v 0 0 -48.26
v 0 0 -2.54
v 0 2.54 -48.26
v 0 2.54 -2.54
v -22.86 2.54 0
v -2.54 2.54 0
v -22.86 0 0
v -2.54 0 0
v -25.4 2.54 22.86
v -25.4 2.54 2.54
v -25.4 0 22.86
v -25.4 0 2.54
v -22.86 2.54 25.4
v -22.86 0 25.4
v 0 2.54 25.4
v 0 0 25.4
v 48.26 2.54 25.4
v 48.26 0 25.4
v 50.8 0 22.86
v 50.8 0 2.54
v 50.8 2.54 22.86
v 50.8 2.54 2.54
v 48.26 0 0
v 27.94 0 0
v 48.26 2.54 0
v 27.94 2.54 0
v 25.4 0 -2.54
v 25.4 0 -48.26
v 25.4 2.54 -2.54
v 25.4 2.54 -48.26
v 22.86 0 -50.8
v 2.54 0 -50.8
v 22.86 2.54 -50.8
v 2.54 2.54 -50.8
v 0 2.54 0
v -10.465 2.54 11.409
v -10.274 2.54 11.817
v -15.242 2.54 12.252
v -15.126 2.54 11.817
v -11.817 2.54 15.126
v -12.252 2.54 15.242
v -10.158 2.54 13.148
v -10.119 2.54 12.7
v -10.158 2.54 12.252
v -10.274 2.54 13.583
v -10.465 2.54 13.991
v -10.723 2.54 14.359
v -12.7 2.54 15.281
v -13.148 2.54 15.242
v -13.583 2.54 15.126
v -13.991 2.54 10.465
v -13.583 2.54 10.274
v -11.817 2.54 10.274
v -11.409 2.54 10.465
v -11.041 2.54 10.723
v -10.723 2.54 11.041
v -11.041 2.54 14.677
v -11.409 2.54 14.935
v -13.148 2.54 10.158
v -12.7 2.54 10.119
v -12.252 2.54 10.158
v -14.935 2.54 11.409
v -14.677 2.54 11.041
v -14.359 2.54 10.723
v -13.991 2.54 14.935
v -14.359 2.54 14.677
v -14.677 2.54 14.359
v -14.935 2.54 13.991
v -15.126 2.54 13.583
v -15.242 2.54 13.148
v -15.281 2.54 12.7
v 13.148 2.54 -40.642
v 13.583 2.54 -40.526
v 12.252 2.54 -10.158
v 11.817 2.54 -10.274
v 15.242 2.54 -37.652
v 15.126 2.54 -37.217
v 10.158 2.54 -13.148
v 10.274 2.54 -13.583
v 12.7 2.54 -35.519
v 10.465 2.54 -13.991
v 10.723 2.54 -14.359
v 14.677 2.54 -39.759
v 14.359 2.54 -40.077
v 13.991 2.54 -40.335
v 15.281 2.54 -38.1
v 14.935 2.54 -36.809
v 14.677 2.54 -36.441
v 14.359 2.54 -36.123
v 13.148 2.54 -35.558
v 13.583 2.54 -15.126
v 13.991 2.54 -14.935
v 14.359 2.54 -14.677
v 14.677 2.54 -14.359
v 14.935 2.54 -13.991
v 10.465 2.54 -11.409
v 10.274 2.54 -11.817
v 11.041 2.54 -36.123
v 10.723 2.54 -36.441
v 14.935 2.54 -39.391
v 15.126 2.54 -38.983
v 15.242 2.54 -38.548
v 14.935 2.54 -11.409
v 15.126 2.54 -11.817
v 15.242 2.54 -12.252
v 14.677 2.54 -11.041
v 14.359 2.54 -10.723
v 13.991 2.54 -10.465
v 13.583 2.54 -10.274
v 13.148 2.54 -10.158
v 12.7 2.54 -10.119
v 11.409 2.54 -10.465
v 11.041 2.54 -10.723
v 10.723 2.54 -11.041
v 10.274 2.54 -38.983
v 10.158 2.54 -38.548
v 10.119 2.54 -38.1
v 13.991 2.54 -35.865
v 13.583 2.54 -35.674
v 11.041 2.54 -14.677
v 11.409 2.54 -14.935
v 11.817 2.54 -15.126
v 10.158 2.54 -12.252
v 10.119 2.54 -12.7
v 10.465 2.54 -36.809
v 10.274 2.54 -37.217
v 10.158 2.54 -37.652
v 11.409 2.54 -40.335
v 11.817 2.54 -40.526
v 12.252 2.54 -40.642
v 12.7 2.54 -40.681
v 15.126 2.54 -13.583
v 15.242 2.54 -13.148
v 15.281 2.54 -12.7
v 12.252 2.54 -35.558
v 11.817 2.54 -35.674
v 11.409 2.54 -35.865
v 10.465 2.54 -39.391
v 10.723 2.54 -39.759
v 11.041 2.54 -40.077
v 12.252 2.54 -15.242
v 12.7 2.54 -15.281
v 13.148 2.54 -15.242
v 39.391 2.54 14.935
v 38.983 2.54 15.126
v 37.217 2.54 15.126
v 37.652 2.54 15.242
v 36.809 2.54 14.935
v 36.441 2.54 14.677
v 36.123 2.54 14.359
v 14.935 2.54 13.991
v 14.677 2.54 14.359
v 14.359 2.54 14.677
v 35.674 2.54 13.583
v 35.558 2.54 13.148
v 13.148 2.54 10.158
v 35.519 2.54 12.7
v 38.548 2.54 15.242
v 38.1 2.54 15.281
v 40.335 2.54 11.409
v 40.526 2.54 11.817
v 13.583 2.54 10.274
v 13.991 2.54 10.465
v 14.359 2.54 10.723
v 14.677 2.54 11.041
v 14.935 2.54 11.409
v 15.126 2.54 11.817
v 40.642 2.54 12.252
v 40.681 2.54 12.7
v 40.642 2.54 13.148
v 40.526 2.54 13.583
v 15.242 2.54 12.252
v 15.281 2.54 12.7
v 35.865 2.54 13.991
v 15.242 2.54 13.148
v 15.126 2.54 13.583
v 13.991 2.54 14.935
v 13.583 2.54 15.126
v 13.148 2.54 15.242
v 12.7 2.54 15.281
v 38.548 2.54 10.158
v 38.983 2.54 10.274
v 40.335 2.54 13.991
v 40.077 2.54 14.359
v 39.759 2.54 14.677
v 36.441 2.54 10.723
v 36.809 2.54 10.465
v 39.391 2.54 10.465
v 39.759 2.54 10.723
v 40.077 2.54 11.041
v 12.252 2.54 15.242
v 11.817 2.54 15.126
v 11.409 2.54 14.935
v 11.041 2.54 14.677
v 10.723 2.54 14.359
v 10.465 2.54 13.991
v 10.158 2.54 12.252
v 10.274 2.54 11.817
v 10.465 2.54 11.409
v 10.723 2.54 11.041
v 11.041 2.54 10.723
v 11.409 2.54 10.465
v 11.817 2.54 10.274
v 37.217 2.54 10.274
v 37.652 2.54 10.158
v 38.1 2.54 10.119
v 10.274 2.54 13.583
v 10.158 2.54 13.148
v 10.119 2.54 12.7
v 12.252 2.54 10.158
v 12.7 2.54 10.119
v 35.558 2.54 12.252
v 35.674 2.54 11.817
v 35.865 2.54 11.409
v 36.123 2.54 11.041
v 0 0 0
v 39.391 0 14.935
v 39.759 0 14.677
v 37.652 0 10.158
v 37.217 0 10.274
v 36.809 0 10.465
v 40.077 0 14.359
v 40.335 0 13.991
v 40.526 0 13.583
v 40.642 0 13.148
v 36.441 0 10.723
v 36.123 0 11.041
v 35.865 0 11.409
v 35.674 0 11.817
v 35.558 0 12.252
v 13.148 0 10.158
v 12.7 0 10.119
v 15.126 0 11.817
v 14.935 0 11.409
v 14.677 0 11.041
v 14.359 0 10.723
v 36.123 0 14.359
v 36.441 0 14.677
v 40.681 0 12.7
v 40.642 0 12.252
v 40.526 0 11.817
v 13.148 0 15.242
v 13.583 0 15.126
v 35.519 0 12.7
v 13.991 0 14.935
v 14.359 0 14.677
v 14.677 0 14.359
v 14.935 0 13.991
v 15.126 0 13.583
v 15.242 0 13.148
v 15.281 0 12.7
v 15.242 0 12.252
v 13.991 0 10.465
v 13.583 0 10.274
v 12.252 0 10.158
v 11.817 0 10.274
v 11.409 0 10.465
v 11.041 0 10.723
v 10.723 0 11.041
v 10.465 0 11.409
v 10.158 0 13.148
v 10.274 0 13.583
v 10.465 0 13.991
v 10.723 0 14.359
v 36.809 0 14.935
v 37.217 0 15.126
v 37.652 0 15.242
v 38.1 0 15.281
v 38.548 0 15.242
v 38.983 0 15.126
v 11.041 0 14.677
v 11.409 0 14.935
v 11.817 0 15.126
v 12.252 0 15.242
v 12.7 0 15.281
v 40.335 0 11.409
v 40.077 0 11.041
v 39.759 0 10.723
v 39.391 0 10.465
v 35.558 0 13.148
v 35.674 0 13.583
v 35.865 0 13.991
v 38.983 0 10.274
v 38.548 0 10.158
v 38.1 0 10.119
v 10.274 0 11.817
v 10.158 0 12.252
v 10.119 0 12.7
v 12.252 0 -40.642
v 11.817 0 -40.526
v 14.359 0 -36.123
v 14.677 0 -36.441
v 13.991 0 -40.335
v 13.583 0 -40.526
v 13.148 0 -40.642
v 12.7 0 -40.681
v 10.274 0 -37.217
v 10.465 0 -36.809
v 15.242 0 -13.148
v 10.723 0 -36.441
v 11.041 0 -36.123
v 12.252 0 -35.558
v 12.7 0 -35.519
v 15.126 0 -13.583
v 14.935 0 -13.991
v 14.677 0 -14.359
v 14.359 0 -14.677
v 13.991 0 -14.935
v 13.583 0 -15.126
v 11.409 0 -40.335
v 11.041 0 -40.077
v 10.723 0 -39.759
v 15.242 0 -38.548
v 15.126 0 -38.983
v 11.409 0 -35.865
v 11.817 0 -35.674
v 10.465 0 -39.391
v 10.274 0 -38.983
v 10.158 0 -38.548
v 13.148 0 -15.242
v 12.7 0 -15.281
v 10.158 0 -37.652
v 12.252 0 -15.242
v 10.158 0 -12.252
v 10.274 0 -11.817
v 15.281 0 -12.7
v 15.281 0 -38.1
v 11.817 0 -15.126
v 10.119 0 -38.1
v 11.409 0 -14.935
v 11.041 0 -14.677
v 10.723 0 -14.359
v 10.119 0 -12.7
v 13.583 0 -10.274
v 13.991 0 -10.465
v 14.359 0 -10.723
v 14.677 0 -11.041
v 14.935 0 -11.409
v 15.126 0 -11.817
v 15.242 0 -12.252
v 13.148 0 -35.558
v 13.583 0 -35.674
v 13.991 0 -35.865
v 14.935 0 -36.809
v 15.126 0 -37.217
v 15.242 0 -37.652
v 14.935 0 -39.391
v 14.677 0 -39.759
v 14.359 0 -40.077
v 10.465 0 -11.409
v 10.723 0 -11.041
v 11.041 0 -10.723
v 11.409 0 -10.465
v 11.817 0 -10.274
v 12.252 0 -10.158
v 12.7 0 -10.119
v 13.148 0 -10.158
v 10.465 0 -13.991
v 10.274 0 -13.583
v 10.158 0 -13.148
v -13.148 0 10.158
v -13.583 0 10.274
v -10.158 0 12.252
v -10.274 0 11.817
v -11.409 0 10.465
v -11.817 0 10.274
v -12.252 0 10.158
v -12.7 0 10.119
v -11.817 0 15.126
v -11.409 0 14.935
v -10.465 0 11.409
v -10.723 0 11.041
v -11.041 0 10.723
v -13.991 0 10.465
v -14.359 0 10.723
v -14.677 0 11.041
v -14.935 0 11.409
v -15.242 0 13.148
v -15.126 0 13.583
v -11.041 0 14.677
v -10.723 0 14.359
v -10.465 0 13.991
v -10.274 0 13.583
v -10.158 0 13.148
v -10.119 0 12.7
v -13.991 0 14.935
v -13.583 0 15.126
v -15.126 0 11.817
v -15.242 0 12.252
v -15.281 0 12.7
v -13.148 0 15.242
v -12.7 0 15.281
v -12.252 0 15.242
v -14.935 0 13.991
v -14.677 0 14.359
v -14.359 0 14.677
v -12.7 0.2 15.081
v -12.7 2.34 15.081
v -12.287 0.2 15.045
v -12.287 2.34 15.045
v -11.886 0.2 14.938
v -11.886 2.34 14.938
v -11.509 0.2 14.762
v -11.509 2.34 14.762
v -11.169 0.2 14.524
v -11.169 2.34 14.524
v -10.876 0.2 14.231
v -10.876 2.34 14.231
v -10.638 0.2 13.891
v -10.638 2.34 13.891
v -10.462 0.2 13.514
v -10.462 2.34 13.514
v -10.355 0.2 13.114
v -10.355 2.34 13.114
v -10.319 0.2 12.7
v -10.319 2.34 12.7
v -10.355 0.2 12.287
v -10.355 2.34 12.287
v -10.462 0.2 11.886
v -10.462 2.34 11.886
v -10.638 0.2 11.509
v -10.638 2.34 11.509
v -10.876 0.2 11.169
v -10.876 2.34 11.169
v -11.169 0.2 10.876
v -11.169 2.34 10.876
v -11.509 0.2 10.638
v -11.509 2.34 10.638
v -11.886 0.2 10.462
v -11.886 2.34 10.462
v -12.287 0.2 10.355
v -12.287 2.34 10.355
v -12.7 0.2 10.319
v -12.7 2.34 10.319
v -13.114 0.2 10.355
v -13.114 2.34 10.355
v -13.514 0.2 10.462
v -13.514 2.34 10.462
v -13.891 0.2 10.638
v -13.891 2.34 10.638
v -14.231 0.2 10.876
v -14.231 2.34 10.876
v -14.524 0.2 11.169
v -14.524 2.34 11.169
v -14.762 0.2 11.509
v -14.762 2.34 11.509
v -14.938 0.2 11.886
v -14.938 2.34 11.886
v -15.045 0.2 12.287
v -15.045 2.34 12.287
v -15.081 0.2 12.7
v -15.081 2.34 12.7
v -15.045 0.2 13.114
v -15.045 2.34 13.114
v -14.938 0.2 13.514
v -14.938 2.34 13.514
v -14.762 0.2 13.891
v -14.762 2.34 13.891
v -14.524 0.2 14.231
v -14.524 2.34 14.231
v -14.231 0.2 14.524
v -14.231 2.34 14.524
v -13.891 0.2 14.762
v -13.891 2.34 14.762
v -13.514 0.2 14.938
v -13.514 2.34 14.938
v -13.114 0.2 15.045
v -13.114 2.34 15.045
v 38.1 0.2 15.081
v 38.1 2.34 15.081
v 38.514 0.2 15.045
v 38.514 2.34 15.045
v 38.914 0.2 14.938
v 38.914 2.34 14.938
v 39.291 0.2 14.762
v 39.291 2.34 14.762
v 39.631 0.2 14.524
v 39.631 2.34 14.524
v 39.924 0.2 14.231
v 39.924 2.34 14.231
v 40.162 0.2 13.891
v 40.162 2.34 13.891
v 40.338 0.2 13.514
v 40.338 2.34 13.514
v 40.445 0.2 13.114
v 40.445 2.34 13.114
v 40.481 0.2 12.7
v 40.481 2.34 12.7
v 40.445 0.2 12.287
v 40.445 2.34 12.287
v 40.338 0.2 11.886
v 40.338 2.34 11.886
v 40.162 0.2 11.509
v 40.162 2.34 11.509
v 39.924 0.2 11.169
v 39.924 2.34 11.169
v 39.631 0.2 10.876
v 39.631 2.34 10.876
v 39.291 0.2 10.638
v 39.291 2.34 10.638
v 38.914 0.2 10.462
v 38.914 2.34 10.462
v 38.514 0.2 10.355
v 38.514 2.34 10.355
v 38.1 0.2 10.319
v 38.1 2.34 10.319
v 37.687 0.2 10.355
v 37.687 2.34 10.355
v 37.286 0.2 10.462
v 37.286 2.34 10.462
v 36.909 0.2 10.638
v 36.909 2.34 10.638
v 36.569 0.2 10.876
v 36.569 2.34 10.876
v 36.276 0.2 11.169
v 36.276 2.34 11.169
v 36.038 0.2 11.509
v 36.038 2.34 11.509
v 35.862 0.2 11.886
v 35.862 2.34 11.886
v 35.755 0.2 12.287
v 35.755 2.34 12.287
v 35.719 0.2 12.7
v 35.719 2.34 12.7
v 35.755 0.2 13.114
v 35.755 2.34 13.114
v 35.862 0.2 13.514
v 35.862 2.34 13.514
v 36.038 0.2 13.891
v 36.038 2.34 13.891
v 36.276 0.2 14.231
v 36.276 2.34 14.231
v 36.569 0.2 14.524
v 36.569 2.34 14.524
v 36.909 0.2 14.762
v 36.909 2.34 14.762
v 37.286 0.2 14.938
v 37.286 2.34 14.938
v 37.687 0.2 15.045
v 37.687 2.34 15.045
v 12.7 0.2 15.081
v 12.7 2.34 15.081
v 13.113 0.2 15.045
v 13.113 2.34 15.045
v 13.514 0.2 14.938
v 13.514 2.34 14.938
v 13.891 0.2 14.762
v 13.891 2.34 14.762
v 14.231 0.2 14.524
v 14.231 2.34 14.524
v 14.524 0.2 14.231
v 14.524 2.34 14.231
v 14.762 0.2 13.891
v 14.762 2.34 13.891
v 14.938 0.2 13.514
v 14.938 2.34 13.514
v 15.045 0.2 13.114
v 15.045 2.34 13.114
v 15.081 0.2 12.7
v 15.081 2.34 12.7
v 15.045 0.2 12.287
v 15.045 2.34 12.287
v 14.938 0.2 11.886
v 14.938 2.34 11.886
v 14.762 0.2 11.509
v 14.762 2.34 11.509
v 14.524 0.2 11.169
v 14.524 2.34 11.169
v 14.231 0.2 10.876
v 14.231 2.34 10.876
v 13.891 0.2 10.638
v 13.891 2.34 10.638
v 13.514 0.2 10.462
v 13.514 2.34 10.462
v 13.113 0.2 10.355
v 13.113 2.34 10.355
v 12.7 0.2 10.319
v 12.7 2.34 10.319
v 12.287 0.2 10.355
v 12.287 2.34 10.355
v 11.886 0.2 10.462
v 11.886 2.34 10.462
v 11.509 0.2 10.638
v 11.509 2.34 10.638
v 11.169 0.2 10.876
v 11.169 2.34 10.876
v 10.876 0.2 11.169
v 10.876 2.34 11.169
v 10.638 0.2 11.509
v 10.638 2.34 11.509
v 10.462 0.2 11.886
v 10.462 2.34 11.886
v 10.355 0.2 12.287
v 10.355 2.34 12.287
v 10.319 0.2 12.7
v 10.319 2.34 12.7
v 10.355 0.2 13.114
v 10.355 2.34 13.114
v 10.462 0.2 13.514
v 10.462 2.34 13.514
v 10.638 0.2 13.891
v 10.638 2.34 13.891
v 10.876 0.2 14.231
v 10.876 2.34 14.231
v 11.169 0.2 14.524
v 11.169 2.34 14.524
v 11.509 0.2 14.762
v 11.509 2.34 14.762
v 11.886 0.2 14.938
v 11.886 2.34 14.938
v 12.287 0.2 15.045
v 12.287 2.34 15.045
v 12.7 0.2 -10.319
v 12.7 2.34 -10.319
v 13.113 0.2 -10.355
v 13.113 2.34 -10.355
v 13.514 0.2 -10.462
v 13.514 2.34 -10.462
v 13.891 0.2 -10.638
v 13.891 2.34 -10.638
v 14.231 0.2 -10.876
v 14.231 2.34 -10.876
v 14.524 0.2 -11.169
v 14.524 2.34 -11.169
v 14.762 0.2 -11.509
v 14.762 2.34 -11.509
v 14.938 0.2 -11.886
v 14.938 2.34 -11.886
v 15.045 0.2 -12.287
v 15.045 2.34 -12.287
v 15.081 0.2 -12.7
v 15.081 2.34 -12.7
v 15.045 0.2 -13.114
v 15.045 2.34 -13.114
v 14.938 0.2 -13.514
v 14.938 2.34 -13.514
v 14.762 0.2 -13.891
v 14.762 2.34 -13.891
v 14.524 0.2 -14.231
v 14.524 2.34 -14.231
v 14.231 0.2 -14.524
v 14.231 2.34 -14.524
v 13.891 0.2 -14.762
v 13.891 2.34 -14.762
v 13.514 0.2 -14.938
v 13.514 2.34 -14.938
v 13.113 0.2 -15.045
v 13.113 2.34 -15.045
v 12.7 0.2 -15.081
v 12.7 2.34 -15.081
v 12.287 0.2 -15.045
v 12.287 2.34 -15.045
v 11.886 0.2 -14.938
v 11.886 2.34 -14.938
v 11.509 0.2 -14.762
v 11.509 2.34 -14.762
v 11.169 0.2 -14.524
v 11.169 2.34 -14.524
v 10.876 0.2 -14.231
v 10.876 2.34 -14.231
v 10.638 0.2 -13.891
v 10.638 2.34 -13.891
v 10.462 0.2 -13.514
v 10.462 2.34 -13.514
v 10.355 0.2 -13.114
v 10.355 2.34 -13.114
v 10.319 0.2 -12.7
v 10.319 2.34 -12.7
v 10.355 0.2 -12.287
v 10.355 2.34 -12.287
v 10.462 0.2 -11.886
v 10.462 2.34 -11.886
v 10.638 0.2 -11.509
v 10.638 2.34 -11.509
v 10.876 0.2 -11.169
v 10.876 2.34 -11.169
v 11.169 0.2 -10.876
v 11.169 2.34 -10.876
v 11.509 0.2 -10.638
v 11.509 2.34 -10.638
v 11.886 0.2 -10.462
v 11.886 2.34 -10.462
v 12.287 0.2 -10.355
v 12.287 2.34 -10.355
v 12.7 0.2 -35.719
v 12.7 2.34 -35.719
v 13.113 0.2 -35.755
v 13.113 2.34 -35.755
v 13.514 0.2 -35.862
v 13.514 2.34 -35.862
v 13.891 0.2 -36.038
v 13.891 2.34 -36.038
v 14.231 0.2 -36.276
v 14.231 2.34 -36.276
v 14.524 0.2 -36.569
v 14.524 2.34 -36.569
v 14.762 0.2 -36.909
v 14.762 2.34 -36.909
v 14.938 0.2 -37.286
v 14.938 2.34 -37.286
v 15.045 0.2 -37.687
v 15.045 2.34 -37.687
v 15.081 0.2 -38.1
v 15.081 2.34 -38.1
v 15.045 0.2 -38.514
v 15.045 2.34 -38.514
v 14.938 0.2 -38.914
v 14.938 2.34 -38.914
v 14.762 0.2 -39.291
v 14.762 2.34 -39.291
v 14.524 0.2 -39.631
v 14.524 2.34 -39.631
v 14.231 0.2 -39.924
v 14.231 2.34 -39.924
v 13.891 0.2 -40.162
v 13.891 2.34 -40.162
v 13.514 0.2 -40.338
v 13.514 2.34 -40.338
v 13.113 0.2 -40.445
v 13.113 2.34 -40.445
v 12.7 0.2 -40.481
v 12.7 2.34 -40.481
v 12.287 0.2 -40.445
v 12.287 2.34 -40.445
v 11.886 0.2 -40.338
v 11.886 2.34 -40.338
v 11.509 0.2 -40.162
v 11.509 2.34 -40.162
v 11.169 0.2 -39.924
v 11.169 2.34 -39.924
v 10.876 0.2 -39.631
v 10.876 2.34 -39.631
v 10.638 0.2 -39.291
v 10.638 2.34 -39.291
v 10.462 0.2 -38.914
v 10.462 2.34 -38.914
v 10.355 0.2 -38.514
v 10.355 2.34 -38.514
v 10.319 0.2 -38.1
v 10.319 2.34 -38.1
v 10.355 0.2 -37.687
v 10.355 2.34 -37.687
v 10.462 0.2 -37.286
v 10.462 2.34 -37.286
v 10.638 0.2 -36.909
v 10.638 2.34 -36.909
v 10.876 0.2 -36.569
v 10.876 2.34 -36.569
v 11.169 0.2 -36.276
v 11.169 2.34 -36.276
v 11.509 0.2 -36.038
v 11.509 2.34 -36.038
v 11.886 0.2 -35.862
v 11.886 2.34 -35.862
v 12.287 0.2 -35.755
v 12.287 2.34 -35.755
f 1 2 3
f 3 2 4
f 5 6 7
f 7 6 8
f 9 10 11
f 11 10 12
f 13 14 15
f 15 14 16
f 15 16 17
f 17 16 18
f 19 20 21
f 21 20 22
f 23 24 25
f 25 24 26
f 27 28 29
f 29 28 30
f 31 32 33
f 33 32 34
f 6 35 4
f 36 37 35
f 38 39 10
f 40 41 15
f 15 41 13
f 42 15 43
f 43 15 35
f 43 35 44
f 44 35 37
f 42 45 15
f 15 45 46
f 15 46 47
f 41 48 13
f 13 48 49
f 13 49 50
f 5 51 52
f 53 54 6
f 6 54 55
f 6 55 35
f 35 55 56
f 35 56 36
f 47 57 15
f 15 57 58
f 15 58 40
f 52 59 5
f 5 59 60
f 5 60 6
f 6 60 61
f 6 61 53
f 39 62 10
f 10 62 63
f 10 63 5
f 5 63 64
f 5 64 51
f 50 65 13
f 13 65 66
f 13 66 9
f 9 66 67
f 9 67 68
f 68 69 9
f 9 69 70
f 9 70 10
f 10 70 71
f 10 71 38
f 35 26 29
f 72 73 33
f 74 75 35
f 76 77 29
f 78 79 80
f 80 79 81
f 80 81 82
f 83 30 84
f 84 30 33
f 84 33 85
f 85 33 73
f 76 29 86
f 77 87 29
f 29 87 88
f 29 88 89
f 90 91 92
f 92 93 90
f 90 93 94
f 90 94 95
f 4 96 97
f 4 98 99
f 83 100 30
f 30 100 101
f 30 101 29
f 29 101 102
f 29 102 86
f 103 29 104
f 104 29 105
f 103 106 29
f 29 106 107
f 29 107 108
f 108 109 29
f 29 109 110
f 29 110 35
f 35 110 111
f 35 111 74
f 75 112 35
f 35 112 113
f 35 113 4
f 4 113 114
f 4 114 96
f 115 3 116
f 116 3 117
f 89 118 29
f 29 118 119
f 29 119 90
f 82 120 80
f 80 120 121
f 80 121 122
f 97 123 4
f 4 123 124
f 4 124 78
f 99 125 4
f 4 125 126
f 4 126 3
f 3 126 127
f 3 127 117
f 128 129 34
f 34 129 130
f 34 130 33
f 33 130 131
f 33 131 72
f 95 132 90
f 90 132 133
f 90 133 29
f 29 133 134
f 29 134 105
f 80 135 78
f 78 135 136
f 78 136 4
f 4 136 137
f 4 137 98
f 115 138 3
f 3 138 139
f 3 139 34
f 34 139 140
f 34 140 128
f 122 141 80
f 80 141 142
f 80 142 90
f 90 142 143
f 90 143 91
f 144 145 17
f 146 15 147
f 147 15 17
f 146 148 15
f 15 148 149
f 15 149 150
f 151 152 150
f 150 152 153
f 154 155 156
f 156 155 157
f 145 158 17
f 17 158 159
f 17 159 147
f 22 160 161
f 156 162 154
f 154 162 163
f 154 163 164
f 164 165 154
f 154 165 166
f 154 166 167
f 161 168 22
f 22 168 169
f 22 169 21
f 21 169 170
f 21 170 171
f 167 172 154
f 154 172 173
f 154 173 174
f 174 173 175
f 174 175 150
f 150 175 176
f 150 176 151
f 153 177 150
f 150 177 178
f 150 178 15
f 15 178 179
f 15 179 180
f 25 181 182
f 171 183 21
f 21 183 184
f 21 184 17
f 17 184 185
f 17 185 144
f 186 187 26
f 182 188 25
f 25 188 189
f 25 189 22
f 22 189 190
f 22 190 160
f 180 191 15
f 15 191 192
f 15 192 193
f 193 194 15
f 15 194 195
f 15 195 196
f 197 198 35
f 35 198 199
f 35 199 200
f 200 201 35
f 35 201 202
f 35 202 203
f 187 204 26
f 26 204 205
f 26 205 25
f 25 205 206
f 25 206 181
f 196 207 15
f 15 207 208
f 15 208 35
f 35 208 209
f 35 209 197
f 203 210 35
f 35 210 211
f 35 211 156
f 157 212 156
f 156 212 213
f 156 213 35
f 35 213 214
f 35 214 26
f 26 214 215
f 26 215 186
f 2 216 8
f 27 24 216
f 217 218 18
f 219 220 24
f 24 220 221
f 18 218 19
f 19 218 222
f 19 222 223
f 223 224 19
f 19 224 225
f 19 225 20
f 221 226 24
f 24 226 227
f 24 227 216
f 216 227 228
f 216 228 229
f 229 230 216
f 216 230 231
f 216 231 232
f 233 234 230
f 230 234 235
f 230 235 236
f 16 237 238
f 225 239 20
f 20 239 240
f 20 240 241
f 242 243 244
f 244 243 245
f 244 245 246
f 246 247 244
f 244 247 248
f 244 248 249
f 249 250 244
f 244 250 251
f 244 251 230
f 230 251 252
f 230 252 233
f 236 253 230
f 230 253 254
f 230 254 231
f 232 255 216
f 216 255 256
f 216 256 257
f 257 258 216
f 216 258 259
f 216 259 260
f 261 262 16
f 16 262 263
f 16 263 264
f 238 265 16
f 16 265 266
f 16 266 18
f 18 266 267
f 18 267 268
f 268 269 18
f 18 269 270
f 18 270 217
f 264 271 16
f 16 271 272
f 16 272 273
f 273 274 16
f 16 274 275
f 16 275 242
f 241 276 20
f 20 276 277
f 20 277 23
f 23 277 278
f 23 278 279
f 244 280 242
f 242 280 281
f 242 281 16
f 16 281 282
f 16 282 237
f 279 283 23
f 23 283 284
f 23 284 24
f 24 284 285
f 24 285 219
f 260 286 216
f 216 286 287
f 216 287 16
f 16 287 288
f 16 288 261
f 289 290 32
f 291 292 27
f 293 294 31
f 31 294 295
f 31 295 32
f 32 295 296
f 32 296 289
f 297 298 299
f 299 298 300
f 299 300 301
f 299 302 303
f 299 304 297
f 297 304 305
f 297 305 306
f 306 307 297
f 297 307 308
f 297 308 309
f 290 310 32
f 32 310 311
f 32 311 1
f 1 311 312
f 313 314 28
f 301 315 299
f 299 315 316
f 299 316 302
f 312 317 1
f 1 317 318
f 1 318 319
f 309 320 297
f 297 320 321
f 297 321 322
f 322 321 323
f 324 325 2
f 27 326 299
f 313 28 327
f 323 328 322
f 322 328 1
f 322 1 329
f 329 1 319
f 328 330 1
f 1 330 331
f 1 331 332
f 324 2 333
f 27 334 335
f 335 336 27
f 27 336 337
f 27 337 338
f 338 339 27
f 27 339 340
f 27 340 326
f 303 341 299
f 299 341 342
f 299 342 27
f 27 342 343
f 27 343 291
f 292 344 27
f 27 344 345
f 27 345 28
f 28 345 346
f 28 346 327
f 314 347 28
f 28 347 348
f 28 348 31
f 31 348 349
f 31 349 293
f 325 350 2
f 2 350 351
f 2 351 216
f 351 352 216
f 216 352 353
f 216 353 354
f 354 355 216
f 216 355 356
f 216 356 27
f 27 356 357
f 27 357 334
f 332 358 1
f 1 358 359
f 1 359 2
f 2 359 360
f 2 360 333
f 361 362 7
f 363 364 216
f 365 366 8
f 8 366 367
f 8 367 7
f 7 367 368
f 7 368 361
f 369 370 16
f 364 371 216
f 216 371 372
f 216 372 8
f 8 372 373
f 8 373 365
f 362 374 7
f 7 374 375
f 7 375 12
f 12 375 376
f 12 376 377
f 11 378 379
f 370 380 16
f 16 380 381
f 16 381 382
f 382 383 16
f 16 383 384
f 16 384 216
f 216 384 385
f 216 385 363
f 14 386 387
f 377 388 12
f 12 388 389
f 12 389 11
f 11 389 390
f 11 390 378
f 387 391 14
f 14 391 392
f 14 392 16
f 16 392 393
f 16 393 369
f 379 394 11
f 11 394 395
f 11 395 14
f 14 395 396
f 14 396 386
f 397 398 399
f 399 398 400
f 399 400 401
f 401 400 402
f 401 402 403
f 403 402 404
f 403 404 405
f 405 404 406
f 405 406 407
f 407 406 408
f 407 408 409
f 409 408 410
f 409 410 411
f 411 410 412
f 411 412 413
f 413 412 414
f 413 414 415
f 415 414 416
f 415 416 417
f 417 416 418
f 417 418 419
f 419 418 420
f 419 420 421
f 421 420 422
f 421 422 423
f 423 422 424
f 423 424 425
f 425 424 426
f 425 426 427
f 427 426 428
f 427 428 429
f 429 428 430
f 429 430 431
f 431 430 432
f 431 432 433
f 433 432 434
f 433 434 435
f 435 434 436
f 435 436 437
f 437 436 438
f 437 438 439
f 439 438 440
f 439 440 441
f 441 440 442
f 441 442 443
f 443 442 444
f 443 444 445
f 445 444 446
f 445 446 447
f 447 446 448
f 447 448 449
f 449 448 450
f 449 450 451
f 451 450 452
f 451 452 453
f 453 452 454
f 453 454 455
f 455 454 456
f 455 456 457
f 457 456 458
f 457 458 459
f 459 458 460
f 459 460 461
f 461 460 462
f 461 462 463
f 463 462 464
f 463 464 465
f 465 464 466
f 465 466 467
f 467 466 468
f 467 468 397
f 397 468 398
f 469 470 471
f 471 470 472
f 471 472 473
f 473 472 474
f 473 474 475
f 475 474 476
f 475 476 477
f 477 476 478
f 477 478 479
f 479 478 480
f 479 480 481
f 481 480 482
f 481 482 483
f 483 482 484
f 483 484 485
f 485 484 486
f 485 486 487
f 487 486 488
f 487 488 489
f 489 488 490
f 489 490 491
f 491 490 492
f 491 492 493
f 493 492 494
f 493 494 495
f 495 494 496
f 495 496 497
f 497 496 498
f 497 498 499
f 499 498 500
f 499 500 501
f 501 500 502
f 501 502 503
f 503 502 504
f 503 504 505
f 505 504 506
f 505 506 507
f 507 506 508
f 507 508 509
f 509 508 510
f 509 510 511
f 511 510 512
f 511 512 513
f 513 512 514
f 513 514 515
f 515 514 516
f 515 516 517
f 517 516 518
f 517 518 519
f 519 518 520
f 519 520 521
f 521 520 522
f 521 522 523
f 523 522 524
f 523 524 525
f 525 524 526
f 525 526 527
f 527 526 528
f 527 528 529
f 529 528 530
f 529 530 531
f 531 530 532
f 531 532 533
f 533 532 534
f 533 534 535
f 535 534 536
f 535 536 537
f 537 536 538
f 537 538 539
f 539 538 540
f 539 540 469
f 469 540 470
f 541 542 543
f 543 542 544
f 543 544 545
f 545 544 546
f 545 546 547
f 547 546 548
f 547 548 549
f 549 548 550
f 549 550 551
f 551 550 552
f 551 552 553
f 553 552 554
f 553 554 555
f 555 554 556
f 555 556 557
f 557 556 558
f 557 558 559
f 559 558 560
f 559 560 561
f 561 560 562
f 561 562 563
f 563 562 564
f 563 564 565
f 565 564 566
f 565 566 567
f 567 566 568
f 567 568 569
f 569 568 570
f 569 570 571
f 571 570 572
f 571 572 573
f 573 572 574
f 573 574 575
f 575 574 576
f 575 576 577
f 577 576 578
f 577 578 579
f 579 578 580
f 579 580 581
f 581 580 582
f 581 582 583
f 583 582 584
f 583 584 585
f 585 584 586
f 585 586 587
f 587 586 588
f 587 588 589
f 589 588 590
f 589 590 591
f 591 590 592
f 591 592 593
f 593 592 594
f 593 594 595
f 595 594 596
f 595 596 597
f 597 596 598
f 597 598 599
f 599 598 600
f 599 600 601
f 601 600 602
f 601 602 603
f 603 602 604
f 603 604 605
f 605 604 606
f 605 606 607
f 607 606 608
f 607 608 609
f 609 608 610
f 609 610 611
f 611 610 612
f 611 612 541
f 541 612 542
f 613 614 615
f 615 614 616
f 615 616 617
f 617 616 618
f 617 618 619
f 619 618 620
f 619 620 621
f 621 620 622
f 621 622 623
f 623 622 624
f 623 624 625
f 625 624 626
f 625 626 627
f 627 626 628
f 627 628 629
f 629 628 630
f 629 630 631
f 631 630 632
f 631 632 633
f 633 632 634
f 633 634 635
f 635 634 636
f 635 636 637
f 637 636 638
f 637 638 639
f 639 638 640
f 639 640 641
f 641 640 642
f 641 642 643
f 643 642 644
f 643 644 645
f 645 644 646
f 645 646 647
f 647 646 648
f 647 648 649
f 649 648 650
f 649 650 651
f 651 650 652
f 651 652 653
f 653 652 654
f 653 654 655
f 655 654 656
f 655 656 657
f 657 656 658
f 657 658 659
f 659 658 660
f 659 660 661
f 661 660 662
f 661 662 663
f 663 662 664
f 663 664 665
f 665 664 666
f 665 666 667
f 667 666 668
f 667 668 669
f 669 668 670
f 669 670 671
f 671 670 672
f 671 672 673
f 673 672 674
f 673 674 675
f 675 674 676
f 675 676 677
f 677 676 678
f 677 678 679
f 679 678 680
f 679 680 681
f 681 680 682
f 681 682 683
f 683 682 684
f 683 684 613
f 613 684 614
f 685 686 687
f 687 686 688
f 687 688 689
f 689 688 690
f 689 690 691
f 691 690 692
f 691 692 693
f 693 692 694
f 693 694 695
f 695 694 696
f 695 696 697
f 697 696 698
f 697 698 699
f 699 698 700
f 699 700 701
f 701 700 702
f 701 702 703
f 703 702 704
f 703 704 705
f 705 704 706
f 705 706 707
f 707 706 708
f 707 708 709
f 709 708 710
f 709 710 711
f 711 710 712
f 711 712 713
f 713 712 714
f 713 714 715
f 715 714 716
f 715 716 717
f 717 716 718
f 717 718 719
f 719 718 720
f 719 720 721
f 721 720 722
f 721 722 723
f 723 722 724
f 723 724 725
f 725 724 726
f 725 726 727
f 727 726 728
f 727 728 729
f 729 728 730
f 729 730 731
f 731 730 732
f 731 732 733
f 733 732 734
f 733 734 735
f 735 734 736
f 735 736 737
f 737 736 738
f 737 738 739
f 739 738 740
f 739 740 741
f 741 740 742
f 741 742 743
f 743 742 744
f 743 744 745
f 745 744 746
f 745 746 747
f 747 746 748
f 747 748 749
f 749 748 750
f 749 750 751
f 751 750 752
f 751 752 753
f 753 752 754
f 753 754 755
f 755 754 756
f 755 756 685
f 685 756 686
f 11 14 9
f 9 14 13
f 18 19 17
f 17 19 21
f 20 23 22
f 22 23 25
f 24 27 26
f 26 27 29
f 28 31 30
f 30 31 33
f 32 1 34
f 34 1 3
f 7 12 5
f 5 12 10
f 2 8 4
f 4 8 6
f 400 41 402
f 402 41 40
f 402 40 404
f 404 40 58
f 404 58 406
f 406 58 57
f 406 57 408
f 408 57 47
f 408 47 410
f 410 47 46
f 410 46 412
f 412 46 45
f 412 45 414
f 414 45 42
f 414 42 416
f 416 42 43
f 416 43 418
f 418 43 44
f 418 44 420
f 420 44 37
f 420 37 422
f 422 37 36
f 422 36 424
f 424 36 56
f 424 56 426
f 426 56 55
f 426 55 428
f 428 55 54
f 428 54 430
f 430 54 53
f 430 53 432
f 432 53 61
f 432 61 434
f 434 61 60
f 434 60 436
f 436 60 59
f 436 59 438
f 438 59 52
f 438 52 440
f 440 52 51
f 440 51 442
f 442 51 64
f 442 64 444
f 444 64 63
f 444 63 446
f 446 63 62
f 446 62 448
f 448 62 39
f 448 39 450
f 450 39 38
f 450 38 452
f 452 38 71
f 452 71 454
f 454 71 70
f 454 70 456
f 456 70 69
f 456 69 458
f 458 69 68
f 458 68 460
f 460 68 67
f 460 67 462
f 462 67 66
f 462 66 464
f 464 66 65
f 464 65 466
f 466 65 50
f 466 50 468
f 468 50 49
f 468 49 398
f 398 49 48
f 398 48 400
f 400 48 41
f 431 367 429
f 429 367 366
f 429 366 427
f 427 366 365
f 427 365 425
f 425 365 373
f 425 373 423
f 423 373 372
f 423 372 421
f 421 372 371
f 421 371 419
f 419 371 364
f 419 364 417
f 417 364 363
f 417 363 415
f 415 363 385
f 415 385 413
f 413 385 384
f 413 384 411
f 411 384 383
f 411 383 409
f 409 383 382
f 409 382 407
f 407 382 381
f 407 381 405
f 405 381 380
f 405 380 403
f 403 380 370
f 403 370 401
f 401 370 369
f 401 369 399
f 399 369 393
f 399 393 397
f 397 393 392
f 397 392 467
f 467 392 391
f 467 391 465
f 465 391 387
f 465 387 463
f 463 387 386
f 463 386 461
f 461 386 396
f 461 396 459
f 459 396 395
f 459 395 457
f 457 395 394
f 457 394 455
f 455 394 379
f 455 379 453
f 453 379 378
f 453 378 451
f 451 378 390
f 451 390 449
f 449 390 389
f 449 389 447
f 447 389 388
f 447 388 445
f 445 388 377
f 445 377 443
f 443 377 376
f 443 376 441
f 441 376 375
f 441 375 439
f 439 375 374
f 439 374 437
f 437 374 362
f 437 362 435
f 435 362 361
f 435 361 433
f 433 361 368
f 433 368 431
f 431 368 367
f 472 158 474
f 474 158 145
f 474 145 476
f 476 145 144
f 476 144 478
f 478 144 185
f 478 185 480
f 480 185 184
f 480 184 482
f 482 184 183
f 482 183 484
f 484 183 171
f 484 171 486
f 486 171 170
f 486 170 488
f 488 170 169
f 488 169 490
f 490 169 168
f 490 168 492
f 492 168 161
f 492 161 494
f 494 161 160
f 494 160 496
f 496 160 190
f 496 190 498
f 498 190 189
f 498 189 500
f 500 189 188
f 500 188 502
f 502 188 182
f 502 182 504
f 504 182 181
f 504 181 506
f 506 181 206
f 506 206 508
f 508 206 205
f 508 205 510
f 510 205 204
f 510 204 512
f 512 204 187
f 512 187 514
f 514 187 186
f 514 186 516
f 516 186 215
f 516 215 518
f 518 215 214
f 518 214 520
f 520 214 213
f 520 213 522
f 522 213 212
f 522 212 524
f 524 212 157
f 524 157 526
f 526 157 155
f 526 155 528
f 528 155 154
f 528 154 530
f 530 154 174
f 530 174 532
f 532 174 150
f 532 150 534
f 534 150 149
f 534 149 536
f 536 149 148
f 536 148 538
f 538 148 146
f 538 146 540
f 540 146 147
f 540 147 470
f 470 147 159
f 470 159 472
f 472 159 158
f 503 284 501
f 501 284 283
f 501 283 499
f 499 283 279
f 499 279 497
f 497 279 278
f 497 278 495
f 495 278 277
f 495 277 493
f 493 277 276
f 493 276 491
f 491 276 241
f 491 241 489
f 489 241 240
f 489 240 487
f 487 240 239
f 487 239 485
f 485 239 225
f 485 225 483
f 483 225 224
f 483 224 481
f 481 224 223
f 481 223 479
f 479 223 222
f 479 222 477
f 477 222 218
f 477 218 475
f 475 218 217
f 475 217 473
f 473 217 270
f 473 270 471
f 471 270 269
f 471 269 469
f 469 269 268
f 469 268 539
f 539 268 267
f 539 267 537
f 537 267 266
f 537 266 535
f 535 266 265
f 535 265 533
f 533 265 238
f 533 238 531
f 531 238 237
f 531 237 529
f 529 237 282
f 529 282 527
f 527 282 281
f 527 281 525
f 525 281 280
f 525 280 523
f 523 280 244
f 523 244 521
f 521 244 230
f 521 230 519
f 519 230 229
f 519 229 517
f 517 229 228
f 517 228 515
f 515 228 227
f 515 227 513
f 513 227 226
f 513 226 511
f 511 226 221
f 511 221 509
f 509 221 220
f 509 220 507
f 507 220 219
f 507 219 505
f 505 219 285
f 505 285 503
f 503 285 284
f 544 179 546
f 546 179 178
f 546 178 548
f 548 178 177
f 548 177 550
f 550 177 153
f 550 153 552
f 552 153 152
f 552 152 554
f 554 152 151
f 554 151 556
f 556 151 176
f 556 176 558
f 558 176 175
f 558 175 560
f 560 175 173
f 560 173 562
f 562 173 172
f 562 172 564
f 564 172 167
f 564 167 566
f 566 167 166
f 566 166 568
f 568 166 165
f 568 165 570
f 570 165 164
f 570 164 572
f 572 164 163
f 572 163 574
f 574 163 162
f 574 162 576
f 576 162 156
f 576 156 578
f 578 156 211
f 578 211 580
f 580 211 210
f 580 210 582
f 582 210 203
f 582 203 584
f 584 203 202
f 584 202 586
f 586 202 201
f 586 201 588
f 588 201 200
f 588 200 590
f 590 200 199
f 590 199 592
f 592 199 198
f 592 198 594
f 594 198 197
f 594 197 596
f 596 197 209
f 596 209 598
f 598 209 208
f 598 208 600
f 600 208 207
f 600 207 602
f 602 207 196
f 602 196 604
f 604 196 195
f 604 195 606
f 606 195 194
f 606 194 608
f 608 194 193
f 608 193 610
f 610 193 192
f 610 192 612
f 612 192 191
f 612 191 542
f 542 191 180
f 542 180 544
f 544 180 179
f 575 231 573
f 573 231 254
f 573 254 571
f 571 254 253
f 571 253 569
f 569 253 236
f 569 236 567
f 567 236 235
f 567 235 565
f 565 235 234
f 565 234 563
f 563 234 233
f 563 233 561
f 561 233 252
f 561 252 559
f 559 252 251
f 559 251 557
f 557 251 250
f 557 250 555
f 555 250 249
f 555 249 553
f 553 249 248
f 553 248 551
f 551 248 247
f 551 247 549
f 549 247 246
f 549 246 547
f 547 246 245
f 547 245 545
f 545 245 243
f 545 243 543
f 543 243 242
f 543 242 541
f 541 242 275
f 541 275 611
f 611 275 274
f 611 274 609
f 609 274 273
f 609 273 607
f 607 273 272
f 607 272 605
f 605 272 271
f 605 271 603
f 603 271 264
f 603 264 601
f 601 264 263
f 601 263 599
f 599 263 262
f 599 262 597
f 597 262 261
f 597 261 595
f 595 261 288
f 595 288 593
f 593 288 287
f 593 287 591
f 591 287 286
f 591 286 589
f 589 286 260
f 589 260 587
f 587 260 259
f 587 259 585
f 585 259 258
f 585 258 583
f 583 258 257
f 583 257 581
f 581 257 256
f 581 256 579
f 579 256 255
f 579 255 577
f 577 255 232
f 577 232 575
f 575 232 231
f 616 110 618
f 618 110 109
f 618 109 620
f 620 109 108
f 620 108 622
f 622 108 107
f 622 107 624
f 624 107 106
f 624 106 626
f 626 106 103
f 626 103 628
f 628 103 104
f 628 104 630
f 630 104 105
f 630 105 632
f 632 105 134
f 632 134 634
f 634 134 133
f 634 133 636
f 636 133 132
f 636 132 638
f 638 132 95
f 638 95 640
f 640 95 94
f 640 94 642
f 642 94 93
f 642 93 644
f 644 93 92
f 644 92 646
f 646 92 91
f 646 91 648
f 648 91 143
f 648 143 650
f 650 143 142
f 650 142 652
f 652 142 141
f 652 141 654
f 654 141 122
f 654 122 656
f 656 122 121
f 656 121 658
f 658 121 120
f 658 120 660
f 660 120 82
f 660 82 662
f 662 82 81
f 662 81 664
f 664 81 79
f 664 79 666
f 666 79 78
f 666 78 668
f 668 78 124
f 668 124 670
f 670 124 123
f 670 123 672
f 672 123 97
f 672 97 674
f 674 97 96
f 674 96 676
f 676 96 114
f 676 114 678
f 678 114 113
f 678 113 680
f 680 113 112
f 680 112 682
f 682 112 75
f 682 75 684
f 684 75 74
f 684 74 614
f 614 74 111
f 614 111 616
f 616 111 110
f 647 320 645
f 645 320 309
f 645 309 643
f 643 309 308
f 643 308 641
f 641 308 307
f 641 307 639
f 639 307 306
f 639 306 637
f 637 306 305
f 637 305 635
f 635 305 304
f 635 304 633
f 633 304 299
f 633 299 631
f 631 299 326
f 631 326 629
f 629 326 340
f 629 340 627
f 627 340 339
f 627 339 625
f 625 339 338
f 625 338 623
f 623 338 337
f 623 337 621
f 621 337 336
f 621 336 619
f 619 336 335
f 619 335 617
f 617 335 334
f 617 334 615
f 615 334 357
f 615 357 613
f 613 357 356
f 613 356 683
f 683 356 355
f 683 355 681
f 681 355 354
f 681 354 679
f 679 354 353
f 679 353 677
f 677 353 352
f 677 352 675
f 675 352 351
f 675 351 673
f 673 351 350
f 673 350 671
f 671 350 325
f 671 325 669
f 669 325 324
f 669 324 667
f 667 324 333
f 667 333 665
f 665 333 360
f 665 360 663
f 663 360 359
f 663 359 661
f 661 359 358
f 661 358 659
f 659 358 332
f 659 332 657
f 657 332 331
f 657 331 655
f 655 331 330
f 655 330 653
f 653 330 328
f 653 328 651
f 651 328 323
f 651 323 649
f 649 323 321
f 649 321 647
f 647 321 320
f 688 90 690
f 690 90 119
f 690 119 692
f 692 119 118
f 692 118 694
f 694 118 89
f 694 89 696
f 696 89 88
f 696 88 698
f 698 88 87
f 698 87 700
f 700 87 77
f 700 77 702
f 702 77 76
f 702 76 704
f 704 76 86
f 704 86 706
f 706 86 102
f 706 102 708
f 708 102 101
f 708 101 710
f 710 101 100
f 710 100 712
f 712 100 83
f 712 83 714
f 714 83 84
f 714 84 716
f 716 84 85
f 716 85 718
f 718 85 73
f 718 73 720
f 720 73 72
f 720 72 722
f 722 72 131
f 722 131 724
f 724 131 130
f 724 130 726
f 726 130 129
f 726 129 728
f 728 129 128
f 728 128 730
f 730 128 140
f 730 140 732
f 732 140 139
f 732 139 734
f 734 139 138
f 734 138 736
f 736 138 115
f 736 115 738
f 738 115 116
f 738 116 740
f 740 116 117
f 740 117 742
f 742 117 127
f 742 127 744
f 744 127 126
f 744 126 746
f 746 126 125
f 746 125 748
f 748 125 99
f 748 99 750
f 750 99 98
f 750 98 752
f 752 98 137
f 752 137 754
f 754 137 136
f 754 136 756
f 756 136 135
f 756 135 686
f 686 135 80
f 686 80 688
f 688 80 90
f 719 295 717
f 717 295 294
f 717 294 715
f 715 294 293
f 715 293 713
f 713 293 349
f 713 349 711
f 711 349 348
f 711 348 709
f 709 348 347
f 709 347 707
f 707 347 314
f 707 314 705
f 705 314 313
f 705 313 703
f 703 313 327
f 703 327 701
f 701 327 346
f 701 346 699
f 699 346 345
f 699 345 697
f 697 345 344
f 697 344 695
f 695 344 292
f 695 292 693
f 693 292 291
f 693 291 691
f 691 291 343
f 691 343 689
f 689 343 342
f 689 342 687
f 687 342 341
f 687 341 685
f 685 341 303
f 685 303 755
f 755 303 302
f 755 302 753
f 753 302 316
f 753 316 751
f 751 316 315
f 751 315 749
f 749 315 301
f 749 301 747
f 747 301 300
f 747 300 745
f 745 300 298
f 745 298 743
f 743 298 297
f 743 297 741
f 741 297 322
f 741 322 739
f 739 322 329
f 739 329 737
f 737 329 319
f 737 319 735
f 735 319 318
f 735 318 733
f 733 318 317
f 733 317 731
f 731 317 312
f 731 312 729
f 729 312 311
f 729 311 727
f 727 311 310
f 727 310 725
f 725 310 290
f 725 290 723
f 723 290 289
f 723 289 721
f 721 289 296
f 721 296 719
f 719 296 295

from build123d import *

# Parameters (mm, degrees)
BOSS_EXTRUDE1_DEPTH            = 2.54
F_3_16_0_1875_DIAMETER_HOLE1_D = 4.7625
CHAMFER1_SIZE                  = 2.54
CHAMFER2_SIZE                  = 0.2


with BuildPart() as part:
    # Sketch1 → Boss-Extrude1 (new body)
    with BuildSketch(Plane(origin=(0, 0, 0), x_dir=(1, 0, 0), z_dir=(0, 1, 0))):
        Polygon((0, 0), (-25.4, 0), (-25.4, -25.4), (50.8, -25.4), (50.8, 0), (25.4, 0), (25.4, 50.8), (0, 50.8), align=None)
    extrude(amount=BOSS_EXTRUDE1_DEPTH)

    # 3/16 (0.1875) Diameter Hole1 (through all)
    with Locations(Plane(origin=(0, 2.54, 0), x_dir=(1, 0, 0), z_dir=(0, 1, 0))):
        with Locations((12.7, 38.1), (12.7, 12.7), (12.7, -12.7), (38.1, -12.7), (-12.7, -12.7)):
            Hole(F_3_16_0_1875_DIAMETER_HOLE1_D / 2)

    # Chamfer1
    chamfer1_edges = [part.edges().sort_by_distance(p)[0] for p in [
        (0, 1.27, -50.8),
        (25.4, 1.27, -50.8),
        (25.4, 1.27, 0),
        (50.8, 1.27, 0),
        (50.8, 1.27, 25.4),
        (-25.4, 1.27, 25.4),
        (-25.4, 1.27, 0),
        (0, 1.27, 0),
    ]]
    chamfer(chamfer1_edges, length=CHAMFER1_SIZE)

    # Chamfer2
    chamfer2_edges = [part.edges().sort_by_distance(p)[0] for p in [
        (-10.31875, 2.54, 12.7),
        (-10.31875, 0, 12.7),
        (40.48125, 2.54, 12.7),
        (40.48125, 0, 12.7),
        (15.08125, 2.54, 12.7),
        (15.08125, 0, 12.7),
        (15.08125, 2.54, -12.7),
        (15.08125, 0, -12.7),
        (15.08125, 2.54, -38.1),
        (15.08125, 0, -38.1),
    ]]
    chamfer(chamfer2_edges, length=CHAMFER2_SIZE)


solid = part.part
